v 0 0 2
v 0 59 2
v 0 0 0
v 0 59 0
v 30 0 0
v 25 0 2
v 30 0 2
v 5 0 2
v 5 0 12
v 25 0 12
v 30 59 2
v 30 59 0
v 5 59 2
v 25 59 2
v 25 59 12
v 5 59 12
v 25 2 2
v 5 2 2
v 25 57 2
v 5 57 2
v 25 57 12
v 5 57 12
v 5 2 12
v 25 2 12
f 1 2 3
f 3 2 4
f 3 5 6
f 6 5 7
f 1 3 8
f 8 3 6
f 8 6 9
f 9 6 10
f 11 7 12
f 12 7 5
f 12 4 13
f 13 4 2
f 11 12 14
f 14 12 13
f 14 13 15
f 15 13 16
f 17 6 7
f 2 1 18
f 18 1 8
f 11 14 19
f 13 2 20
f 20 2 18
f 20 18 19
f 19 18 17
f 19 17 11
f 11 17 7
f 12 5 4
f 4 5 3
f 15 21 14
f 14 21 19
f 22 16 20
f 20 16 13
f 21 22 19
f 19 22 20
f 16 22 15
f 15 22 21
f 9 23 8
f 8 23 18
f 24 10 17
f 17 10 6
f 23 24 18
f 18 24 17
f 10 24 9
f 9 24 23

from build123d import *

# Parameters (mm, degrees)
SKETCH1_W           = 30
SKETCH1_H           = 59
BOSS_EXTRUDE1_DEPTH = 2
SKETCH2_W           = 20
SKETCH2_H           = 2
BOSS_EXTRUDE2_DEPTH = 10


with BuildPart() as part:
    # Sketch1 → Boss-Extrude1 (new body)
    with BuildSketch(Plane.XY):
        with Locations((15, 29.5)):
            Rectangle(SKETCH1_W, SKETCH1_H)
    extrude(amount=BOSS_EXTRUDE1_DEPTH)

    # Sketch2 → Boss-Extrude2 (add)
    with BuildSketch(Plane.XY.offset(2)):
        with Locations((15, 58)):
            Rectangle(SKETCH2_W, SKETCH2_H)
        with Locations((15, 1)):
            Rectangle(SKETCH2_W, SKETCH2_H)
    extrude(amount=BOSS_EXTRUDE2_DEPTH)


solid = part.part
